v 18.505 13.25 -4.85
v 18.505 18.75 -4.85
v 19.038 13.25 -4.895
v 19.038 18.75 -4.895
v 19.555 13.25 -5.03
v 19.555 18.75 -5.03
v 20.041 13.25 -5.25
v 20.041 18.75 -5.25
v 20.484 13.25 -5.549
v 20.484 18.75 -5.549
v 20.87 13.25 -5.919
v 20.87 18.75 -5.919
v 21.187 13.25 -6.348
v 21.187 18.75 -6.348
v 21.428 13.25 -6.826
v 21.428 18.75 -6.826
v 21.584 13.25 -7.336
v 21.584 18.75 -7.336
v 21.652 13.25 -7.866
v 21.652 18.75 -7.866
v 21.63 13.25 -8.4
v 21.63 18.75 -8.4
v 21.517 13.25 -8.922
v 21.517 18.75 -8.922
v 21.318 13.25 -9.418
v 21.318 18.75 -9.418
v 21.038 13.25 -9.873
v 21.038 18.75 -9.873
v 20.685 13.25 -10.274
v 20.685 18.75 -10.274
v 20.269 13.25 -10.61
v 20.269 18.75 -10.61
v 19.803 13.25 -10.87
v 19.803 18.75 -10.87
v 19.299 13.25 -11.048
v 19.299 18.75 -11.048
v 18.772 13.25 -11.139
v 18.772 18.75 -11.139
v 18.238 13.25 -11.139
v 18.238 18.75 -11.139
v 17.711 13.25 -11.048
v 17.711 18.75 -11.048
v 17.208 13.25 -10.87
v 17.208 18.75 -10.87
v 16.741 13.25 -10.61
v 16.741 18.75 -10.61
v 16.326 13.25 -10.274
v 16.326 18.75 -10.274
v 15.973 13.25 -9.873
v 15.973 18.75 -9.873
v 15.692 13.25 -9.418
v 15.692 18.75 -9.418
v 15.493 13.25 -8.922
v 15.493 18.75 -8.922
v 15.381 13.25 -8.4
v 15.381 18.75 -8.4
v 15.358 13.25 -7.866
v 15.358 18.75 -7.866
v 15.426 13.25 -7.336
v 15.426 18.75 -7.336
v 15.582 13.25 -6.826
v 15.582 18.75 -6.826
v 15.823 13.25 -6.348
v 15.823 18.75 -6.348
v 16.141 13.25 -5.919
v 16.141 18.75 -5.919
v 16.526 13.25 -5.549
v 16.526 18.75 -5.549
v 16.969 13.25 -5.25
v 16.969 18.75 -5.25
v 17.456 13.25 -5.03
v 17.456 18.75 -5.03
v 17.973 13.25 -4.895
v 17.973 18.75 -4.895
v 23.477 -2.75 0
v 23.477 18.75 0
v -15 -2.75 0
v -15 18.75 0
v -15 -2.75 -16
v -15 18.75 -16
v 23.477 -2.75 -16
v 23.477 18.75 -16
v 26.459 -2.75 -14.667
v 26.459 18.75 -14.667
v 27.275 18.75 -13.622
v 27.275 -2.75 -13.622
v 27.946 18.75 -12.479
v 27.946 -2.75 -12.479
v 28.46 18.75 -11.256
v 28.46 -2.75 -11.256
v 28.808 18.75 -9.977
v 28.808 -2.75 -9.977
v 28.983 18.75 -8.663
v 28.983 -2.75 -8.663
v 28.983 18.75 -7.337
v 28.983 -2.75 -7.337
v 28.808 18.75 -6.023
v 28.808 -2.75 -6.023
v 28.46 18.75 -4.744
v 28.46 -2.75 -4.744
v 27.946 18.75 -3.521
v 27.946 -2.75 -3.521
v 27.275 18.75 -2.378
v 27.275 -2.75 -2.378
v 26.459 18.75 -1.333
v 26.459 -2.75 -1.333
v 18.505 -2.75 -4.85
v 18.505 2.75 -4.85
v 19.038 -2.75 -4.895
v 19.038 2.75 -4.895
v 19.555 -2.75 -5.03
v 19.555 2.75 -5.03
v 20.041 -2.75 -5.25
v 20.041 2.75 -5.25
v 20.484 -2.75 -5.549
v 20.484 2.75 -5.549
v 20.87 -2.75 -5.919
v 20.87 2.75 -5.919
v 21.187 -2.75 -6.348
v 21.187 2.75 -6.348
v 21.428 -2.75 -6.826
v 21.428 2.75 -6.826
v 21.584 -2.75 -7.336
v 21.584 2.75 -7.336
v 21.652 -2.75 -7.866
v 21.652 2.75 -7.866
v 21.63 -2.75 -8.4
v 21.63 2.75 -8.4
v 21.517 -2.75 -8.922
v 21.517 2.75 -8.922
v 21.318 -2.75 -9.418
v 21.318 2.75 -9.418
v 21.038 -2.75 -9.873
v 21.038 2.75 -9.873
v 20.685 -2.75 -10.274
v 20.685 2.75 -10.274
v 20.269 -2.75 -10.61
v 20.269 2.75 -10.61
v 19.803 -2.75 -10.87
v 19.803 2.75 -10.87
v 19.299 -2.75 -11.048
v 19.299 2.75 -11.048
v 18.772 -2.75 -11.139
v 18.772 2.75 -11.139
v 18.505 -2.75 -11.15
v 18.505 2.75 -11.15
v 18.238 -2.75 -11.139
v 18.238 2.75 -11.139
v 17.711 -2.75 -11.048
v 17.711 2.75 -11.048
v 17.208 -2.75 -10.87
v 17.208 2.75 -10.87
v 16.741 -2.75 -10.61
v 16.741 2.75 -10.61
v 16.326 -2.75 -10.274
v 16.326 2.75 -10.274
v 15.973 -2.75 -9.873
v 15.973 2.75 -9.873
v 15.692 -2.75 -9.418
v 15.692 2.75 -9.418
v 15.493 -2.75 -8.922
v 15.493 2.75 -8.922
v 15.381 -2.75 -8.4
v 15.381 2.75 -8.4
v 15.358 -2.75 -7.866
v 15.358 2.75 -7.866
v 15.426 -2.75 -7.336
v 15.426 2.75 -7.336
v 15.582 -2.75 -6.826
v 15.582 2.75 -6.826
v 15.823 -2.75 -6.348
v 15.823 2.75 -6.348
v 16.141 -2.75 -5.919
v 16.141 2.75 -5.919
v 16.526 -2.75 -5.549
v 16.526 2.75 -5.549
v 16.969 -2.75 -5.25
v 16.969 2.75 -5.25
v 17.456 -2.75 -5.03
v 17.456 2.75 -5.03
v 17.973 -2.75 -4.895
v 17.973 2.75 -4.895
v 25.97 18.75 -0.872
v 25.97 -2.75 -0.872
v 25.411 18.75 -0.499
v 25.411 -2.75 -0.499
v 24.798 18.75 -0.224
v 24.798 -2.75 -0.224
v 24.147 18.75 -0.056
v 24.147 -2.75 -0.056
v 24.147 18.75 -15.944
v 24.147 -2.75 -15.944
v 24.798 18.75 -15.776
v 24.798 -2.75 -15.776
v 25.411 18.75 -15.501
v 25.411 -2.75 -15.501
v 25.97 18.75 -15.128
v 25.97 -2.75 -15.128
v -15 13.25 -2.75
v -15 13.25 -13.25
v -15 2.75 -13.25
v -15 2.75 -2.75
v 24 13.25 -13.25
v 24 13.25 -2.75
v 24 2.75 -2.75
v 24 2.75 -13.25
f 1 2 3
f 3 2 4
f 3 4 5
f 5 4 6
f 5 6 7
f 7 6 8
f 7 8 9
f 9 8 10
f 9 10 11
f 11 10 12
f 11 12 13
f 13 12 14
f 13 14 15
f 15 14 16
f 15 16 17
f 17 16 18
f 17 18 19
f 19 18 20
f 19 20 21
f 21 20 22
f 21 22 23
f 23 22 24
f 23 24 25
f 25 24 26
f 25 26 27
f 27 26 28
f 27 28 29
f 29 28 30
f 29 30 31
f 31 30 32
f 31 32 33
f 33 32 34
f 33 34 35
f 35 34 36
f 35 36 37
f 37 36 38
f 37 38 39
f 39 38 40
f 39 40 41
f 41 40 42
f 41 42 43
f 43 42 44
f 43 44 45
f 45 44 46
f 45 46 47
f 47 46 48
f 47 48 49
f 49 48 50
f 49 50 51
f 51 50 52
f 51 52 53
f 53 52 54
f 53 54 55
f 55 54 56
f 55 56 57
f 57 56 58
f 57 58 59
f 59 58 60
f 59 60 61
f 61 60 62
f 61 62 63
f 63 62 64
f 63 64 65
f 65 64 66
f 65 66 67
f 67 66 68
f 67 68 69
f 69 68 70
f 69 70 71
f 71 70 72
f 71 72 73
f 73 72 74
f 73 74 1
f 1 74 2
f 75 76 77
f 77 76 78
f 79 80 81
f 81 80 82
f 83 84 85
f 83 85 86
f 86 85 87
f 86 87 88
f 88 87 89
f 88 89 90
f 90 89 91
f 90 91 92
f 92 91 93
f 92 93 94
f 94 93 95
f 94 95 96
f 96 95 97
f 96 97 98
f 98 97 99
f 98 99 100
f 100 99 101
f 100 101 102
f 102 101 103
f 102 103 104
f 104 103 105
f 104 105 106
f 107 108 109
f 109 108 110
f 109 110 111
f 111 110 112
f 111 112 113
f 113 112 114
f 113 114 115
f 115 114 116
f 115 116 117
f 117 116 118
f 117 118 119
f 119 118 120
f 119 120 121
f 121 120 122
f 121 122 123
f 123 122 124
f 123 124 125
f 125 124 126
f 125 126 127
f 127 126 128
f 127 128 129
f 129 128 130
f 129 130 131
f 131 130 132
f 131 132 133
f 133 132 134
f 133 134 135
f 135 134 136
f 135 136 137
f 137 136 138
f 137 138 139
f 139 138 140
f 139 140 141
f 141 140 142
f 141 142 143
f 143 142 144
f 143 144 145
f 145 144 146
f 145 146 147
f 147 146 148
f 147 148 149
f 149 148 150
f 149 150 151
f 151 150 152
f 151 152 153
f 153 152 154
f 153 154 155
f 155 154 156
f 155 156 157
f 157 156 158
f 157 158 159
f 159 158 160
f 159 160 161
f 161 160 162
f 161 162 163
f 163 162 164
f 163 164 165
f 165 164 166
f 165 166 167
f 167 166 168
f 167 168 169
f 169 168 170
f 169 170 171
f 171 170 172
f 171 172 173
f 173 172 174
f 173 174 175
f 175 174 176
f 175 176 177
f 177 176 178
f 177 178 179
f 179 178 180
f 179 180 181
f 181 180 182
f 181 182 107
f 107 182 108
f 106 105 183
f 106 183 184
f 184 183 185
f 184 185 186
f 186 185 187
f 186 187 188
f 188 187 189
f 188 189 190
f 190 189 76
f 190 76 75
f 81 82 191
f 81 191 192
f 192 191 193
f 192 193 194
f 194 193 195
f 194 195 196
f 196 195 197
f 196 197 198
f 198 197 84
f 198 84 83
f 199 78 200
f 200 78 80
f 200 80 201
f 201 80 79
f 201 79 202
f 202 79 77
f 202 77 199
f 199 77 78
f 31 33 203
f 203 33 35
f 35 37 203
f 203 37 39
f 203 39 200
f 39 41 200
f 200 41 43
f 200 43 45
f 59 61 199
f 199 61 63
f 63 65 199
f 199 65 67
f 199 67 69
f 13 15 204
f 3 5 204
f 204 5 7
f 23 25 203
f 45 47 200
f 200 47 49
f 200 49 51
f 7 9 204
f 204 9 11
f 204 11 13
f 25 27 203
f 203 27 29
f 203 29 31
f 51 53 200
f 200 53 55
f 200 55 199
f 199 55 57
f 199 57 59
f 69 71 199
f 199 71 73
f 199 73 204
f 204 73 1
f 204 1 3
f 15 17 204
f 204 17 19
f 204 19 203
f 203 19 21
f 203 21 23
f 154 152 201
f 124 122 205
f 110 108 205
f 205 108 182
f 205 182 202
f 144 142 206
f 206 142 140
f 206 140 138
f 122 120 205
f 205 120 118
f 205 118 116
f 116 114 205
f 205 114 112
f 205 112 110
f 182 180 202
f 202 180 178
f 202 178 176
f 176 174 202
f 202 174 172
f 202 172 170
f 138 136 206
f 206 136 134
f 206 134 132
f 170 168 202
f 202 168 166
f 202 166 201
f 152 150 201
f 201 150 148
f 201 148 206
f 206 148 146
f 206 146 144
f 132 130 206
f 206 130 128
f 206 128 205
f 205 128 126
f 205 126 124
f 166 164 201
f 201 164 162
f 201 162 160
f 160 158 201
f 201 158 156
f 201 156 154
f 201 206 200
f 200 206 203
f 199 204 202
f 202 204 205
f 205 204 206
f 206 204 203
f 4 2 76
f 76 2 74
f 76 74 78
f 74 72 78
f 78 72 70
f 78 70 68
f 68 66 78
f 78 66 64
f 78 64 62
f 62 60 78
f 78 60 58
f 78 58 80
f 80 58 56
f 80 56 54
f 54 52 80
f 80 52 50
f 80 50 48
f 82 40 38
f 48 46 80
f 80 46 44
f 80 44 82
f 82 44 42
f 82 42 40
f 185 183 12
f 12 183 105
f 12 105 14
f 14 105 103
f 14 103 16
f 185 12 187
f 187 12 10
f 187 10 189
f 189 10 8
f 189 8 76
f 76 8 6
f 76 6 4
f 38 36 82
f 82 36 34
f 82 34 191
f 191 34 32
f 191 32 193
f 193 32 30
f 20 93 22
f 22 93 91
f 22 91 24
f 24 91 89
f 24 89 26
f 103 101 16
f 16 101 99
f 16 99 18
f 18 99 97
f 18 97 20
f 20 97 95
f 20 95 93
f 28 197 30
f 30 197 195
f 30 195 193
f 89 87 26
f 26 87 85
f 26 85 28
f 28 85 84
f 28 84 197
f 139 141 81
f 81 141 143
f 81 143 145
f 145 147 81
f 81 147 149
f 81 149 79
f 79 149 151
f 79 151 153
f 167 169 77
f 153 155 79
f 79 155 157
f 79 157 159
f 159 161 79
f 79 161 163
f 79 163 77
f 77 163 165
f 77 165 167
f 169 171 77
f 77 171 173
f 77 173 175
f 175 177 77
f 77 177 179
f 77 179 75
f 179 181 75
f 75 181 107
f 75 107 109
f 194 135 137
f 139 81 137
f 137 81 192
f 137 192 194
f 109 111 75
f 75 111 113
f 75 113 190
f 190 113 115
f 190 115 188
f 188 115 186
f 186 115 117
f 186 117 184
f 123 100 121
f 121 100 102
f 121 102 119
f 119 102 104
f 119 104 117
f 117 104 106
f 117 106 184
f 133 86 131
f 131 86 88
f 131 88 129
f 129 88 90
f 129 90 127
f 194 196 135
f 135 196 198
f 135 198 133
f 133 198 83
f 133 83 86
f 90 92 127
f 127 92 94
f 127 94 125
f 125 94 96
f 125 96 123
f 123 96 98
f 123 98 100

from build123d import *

# Parameters (mm, degrees)
BOSS_EXTRUDE1_DEPTH      = 19
BOSS_EXTRUDE1_DEPTH_BACK = 4
SKETCH2_R                = 3.15
CUT_EXTRUDE1_DEPTH       = 32
SKETCH3_W                = 10.5
SKETCH3_H                = 10.5
CUT_EXTRUDE2_DEPTH       = 24
FILLET1_R                = 4
SKETCH4_W                = 16
SKETCH4_H                = 23
SKETCH4_W_2              = 10.5
SKETCH4_H_2              = 10.5
BOSS_EXTRUDE2_DEPTH      = 15
SKETCH5_W                = 16
SKETCH5_H                = 1.25
SKETCH5_H_2              = 0.25
CUT_EXTRUDE3_DEPTH       = 48


with BuildPart() as part:
    # Sketch1 → Boss-Extrude1 (new body, two sides)
    with BuildSketch(Plane(origin=(0, 0, 0), x_dir=(1, 0, 0), z_dir=(0, 1, 0))) as boss_extrude1_sk:
        with BuildLine():
            Line((0, 0), (0, 16))
            Line((0, 16), (25.005148766, 16))
            ThreePointArc((25.005148766, 16), (29.005148766, 8), (25.005148766, 0))
            Line((25.005148766, 0), (0, 0))
        make_face()
    extrude(amount=BOSS_EXTRUDE1_DEPTH)
    extrude(boss_extrude1_sk.sketch, amount=-BOSS_EXTRUDE1_DEPTH_BACK)

    # Sketch2 → Cut-Extrude1 (cut)
    with BuildSketch(Plane(origin=(0, 19, 0), x_dir=(1, 0, 0), z_dir=(0, 1, 0))):
        with Locations((18.505148766, 8)):
            Circle(SKETCH2_R)
    extrude(amount=-CUT_EXTRUDE1_DEPTH, mode=Mode.SUBTRACT)

    # Sketch3 → Cut-Extrude2 (cut)
    with BuildSketch(Plane.ZY):
        with Locations((-8, 8)):
            Rectangle(SKETCH3_W, SKETCH3_H)
    extrude(amount=-CUT_EXTRUDE2_DEPTH, mode=Mode.SUBTRACT)

    # Fillet1
    fillet1_edges = [part.edges().sort_by_distance(p)[0] for p in [
        (25.005148766, 7.5, -16),
        (25.005148766, 7.5, 0),
    ]]
    fillet(fillet1_edges, radius=FILLET1_R)

    # Sketch4 → Boss-Extrude2 (add)
    with BuildSketch(Plane.ZY):
        with Locations((-8, 7.5)):
            Rectangle(SKETCH4_W, SKETCH4_H)
        with Locations((-8, 8)):
            Rectangle(SKETCH4_W_2, SKETCH4_H_2, mode=Mode.SUBTRACT)
    extrude(amount=BOSS_EXTRUDE2_DEPTH)

    # Sketch5 → Cut-Extrude3 (cut)
    with BuildSketch(Plane.ZY.offset(15)):
        with Locations((-8, -3.375)):
            Rectangle(SKETCH5_W, SKETCH5_H)
        with Locations((-8, 18.875)):
            Rectangle(SKETCH5_W, SKETCH5_H_2)
    extrude(amount=-CUT_EXTRUDE3_DEPTH, mode=Mode.SUBTRACT)


solid = part.part
